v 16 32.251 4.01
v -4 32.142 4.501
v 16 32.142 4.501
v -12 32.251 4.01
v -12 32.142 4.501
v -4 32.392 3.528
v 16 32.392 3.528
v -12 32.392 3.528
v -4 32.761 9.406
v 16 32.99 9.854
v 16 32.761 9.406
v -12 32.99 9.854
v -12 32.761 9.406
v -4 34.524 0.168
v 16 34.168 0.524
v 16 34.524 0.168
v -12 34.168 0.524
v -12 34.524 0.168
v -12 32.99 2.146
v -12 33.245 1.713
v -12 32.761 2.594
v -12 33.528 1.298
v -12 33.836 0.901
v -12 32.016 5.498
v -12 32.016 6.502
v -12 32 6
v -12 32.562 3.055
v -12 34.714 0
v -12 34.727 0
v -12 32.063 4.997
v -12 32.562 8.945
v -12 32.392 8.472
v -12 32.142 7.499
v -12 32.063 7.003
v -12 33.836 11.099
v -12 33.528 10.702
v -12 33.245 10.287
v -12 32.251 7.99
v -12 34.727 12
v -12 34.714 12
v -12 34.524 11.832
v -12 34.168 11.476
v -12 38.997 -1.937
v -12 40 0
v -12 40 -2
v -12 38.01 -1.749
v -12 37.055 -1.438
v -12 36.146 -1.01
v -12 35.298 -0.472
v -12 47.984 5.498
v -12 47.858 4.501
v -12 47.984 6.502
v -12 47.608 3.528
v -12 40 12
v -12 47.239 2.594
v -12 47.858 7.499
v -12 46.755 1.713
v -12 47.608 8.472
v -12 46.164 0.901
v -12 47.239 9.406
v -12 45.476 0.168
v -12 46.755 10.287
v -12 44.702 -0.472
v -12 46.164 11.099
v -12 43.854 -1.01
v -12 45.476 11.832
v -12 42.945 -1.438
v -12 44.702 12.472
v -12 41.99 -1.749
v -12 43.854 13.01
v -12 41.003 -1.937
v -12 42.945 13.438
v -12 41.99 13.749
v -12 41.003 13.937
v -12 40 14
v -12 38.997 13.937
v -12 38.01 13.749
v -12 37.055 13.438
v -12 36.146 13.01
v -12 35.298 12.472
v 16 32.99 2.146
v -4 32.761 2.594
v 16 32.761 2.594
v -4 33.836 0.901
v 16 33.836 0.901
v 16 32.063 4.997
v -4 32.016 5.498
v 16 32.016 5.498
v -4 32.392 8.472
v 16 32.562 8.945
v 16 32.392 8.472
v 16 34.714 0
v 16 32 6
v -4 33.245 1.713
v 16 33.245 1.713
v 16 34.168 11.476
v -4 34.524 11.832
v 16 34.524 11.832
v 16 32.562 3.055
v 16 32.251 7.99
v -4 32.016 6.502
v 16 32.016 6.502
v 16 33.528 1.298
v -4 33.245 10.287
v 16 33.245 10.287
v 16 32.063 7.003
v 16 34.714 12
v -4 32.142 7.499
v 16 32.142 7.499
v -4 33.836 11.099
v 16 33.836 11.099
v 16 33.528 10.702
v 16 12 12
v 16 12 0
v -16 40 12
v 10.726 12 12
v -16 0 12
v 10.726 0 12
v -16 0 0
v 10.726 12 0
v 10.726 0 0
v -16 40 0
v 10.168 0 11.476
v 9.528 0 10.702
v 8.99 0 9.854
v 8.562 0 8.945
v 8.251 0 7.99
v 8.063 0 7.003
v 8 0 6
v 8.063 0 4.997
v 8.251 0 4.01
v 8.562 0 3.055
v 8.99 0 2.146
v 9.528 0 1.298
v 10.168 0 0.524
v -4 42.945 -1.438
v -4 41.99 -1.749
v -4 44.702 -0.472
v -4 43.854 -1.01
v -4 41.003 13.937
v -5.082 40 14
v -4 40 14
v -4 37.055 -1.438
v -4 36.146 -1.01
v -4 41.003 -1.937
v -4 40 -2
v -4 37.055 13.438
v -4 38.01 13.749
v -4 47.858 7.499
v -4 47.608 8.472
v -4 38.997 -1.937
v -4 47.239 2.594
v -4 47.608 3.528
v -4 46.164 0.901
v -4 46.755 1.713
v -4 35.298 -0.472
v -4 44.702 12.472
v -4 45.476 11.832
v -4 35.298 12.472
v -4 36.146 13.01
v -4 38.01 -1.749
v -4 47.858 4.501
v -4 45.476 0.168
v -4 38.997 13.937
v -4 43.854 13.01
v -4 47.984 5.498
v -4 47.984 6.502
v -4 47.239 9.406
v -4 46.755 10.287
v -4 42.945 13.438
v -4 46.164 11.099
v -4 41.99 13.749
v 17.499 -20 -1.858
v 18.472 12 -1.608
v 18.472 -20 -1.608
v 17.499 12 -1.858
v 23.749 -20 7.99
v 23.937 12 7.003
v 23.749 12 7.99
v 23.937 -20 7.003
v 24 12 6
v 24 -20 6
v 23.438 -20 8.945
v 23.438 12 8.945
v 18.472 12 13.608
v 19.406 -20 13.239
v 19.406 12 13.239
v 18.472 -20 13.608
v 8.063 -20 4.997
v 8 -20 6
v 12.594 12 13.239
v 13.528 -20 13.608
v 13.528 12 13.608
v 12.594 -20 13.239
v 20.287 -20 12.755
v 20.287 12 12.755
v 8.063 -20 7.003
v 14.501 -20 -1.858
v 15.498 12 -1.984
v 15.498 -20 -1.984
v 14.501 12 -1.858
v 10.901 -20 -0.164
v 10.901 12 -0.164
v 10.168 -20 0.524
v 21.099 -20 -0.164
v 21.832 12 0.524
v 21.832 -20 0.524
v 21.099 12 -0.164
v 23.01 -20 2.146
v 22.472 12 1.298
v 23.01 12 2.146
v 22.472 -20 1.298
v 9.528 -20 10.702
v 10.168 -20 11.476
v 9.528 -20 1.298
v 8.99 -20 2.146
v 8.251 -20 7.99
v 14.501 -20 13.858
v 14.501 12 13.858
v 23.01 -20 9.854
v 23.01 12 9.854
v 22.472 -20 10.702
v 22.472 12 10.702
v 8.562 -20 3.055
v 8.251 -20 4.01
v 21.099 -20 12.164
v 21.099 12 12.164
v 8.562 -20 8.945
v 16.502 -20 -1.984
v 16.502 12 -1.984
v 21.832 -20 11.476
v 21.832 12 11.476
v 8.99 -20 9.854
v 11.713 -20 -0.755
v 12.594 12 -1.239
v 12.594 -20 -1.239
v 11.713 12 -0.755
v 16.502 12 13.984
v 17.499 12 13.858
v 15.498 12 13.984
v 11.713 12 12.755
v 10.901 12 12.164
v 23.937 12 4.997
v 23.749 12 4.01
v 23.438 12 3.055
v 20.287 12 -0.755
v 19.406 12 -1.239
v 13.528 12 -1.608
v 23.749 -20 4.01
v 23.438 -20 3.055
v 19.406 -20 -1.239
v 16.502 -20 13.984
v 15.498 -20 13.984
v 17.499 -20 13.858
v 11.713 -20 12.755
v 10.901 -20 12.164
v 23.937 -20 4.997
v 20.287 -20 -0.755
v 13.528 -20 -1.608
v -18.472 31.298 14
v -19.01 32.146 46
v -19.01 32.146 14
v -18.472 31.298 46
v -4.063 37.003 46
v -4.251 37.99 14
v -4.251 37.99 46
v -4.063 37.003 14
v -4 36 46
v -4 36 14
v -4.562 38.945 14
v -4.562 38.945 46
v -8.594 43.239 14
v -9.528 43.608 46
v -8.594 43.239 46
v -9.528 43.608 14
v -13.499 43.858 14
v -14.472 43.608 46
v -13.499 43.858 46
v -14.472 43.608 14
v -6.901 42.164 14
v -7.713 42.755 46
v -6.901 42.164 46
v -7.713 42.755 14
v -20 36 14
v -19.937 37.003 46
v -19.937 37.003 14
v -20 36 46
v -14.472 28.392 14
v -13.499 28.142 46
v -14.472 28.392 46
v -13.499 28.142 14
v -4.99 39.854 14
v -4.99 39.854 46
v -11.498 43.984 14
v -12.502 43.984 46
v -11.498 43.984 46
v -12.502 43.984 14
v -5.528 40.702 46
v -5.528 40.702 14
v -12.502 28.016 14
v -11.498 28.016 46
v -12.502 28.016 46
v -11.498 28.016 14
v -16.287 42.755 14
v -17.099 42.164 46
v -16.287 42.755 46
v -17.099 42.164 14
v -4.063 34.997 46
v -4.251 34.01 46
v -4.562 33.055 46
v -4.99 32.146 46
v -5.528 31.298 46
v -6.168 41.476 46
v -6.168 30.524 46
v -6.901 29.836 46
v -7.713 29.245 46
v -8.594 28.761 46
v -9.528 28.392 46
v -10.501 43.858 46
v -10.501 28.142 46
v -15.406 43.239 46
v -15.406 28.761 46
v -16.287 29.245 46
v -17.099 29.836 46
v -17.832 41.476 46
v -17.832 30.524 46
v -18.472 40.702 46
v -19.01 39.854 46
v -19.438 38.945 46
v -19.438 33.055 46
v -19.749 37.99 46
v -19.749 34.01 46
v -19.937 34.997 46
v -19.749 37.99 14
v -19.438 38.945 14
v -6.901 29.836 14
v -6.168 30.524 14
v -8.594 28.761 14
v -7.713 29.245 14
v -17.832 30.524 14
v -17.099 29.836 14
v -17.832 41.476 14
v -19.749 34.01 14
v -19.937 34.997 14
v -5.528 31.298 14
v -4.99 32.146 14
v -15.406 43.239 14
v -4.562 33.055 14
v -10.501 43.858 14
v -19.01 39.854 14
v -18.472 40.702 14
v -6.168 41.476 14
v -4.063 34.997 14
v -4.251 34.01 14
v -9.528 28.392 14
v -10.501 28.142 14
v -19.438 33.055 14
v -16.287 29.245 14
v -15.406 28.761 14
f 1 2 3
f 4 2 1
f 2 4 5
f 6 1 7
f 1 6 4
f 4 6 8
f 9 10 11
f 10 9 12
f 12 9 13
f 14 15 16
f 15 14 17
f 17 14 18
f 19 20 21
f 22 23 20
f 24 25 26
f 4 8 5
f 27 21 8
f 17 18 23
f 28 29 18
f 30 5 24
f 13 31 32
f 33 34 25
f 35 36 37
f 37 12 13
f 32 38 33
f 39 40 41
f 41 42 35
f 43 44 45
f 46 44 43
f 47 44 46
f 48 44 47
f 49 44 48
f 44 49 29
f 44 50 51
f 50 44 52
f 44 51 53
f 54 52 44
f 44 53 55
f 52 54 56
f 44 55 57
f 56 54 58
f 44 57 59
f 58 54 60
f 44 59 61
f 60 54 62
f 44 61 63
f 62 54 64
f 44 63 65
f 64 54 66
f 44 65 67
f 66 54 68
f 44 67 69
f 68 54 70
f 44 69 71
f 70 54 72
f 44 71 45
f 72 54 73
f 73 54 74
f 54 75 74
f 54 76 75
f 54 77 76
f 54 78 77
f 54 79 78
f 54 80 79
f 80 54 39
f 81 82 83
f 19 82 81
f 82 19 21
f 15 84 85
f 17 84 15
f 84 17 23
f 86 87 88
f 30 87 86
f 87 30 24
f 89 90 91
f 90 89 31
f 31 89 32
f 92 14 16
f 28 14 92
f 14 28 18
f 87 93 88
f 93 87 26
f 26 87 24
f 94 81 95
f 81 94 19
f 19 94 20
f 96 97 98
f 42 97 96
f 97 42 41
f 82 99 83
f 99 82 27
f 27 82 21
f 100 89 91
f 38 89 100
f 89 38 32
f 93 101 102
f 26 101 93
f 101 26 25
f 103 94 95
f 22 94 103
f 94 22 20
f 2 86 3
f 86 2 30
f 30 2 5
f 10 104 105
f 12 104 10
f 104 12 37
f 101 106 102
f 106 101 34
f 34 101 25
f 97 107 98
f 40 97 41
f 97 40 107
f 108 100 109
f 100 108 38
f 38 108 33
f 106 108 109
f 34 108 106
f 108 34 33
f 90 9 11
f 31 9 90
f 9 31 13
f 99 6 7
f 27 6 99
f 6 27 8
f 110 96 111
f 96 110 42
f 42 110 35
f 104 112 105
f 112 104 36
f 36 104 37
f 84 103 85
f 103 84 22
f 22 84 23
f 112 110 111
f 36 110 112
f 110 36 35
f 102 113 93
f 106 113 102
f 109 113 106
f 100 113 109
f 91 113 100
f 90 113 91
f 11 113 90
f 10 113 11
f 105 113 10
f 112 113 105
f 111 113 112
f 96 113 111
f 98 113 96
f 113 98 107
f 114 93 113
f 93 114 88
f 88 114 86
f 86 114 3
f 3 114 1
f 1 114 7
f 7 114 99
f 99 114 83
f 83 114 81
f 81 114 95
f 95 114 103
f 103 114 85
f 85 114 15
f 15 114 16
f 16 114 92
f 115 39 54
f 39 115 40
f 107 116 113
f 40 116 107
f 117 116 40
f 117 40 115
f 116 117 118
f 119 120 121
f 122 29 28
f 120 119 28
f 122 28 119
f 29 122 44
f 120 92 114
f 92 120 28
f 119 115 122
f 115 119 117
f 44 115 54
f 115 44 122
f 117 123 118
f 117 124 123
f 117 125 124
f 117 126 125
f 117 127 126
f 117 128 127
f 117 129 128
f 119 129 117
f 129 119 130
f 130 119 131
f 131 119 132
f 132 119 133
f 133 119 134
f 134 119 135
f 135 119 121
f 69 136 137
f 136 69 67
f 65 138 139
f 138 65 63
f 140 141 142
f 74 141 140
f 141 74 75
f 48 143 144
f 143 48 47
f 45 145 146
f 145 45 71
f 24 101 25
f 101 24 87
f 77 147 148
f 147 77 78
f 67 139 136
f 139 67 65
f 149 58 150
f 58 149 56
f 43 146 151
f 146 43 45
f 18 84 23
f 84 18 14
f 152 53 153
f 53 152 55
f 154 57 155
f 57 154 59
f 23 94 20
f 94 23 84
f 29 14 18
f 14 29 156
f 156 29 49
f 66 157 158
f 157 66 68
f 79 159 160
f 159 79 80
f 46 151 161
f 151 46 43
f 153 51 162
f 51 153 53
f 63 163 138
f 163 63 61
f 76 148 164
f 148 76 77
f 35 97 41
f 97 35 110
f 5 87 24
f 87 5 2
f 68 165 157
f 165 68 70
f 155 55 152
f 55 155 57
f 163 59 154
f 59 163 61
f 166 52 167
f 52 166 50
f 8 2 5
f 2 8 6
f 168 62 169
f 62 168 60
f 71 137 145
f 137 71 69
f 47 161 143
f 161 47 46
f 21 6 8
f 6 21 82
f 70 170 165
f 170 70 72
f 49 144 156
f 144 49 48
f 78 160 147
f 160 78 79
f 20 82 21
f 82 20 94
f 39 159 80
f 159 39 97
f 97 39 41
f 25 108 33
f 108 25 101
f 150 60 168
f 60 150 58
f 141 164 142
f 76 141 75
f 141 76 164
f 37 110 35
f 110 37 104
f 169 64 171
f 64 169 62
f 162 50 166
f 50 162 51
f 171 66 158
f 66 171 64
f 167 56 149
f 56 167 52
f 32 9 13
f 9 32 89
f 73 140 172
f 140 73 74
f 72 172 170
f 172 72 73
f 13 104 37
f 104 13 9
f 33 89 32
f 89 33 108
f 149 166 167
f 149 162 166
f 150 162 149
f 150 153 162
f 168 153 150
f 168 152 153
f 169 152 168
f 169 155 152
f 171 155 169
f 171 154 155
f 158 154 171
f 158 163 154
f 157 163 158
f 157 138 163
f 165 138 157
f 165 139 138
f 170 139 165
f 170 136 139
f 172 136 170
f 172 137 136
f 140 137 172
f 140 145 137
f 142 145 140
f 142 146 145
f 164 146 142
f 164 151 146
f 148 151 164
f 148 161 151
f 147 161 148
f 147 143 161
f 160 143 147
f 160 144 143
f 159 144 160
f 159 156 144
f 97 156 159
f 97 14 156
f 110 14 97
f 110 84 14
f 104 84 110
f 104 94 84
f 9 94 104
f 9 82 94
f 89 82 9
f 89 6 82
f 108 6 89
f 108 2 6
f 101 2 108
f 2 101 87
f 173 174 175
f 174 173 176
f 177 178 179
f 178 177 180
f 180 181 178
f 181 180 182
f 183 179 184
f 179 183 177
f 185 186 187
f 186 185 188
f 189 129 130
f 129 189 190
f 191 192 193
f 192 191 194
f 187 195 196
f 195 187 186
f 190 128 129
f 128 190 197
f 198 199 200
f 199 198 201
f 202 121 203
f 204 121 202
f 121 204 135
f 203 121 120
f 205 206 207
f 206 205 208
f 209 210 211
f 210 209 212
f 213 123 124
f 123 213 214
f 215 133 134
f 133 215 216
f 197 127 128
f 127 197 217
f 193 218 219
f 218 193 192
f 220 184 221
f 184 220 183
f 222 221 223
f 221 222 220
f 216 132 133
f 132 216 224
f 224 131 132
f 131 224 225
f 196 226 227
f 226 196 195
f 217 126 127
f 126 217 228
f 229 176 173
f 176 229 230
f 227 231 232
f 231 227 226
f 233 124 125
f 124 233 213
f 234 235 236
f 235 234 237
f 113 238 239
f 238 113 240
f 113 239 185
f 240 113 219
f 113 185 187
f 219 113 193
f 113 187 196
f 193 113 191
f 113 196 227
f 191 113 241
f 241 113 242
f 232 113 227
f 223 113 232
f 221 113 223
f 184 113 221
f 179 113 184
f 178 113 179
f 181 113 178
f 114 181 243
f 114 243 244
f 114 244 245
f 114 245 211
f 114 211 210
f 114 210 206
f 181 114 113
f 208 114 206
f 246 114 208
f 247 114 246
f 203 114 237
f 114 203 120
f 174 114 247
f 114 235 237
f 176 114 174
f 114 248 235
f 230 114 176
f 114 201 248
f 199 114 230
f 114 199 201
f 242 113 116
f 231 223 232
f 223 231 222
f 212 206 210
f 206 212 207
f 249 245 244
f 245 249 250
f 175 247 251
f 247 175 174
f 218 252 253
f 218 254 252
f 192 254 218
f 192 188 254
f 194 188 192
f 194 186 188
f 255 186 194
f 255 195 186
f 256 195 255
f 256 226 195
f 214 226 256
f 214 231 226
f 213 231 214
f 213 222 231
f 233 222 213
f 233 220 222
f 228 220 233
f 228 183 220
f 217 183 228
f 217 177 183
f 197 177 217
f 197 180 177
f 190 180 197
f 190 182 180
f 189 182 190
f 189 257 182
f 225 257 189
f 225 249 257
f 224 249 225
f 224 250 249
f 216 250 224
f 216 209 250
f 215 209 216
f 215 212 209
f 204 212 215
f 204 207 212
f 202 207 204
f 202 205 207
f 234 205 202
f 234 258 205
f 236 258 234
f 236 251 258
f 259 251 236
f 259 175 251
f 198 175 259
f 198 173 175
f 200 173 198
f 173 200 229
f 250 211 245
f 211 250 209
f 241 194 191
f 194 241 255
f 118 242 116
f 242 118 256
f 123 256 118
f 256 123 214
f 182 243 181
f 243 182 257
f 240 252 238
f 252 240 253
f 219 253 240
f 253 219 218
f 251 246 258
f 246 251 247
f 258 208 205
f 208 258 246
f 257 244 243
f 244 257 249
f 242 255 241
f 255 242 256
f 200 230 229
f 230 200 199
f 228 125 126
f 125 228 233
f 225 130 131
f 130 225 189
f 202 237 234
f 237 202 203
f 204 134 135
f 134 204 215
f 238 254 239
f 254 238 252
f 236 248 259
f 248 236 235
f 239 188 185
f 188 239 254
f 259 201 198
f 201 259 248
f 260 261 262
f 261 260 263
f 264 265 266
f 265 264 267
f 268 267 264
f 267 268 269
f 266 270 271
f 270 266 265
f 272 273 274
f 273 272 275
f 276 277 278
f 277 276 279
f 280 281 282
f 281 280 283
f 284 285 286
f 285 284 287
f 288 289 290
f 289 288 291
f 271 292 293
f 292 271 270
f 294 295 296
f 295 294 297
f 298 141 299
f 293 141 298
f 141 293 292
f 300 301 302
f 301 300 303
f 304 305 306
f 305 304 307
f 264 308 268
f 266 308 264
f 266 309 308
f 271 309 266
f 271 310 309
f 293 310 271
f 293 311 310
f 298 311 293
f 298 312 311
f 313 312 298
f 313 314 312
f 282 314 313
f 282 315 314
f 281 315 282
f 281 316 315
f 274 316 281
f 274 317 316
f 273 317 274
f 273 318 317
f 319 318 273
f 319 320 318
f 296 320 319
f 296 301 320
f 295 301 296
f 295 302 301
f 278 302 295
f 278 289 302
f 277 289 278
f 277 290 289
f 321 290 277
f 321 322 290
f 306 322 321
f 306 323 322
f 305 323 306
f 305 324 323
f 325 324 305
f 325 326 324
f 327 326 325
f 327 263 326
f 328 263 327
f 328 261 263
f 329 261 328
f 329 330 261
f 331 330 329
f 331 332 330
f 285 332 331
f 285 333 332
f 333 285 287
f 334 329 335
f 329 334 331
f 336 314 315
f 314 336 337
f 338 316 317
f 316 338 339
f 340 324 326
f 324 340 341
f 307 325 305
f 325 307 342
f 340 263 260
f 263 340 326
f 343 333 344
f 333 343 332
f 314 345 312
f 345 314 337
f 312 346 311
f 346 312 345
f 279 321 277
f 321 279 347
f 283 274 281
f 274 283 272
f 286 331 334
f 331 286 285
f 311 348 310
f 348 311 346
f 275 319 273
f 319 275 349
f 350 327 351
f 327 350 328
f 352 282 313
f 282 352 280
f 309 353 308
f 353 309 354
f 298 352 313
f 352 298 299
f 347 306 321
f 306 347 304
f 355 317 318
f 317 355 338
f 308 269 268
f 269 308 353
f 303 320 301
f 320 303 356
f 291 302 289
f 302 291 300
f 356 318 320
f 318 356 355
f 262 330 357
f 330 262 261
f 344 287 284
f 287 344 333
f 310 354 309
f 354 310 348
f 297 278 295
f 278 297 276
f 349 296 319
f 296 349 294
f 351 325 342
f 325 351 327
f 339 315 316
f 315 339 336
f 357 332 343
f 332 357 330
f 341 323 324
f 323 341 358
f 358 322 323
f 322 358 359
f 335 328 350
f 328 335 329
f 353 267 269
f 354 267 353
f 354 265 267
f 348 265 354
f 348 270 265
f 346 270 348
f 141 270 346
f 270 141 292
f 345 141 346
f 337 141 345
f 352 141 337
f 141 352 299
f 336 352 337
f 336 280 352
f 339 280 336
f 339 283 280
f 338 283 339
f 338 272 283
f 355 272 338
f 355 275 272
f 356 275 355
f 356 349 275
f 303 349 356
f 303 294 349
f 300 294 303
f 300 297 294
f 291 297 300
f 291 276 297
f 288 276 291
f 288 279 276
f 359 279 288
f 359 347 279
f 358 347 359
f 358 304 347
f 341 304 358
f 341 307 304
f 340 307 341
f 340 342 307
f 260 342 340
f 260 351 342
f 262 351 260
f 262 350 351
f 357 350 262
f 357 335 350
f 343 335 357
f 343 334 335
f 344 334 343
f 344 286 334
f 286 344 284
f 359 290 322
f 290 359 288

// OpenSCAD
// Define parameters for the components
module cylindrical_joint_A() {
    cylinder(h = 8, r = 8, $fn = 50); // Short cylinder with height 8 and radius 8
}

module wavy_block_B() {
    difference() {
        cube([32, 40, 12]); // Flat rectangular block
        // Add four rounded wave-like protrusions
        for (i = [0, 1, 2, 3]) {
            translate([(i * 8) + 4, 40, 6])
                rotate([0, 90, 0])
                cylinder(h = 14, r = 8, $fn = 100);
        }
    }
    // Attach cylindrical_joint_A to the first wave-like protrusion
    translate([4, 40, 6]) {
        rotate([0, 90, 0])
            cylindrical_joint_A();
    }
}

module long_cylindrical_connector_C() {
    cylinder(h = 32, r = 8, $fn = 50); // Longer cylinder with height 32 and radius 8
}

// Assemble the model based on the positional relationships
module flexible_coupling_model() {
    union() {
        // Create wavy_block_B with cylindrical_joint_A attached
        translate([-16, 0, 0])
            wavy_block_B();

        // Position one long_cylindrical_connector_C perpendicularly to the flat side of wavy_block_B
        translate([16, 12, 6])
            rotate([90, 0, 0])
            long_cylindrical_connector_C();
        
        // Position another long_cylindrical_connector_C horizontally attached to the attached cylindrical_joint_A
        translate([-12, 36, 14]) 
            long_cylindrical_connector_C();
    }
}

// Render the model
flexible_coupling_model();
